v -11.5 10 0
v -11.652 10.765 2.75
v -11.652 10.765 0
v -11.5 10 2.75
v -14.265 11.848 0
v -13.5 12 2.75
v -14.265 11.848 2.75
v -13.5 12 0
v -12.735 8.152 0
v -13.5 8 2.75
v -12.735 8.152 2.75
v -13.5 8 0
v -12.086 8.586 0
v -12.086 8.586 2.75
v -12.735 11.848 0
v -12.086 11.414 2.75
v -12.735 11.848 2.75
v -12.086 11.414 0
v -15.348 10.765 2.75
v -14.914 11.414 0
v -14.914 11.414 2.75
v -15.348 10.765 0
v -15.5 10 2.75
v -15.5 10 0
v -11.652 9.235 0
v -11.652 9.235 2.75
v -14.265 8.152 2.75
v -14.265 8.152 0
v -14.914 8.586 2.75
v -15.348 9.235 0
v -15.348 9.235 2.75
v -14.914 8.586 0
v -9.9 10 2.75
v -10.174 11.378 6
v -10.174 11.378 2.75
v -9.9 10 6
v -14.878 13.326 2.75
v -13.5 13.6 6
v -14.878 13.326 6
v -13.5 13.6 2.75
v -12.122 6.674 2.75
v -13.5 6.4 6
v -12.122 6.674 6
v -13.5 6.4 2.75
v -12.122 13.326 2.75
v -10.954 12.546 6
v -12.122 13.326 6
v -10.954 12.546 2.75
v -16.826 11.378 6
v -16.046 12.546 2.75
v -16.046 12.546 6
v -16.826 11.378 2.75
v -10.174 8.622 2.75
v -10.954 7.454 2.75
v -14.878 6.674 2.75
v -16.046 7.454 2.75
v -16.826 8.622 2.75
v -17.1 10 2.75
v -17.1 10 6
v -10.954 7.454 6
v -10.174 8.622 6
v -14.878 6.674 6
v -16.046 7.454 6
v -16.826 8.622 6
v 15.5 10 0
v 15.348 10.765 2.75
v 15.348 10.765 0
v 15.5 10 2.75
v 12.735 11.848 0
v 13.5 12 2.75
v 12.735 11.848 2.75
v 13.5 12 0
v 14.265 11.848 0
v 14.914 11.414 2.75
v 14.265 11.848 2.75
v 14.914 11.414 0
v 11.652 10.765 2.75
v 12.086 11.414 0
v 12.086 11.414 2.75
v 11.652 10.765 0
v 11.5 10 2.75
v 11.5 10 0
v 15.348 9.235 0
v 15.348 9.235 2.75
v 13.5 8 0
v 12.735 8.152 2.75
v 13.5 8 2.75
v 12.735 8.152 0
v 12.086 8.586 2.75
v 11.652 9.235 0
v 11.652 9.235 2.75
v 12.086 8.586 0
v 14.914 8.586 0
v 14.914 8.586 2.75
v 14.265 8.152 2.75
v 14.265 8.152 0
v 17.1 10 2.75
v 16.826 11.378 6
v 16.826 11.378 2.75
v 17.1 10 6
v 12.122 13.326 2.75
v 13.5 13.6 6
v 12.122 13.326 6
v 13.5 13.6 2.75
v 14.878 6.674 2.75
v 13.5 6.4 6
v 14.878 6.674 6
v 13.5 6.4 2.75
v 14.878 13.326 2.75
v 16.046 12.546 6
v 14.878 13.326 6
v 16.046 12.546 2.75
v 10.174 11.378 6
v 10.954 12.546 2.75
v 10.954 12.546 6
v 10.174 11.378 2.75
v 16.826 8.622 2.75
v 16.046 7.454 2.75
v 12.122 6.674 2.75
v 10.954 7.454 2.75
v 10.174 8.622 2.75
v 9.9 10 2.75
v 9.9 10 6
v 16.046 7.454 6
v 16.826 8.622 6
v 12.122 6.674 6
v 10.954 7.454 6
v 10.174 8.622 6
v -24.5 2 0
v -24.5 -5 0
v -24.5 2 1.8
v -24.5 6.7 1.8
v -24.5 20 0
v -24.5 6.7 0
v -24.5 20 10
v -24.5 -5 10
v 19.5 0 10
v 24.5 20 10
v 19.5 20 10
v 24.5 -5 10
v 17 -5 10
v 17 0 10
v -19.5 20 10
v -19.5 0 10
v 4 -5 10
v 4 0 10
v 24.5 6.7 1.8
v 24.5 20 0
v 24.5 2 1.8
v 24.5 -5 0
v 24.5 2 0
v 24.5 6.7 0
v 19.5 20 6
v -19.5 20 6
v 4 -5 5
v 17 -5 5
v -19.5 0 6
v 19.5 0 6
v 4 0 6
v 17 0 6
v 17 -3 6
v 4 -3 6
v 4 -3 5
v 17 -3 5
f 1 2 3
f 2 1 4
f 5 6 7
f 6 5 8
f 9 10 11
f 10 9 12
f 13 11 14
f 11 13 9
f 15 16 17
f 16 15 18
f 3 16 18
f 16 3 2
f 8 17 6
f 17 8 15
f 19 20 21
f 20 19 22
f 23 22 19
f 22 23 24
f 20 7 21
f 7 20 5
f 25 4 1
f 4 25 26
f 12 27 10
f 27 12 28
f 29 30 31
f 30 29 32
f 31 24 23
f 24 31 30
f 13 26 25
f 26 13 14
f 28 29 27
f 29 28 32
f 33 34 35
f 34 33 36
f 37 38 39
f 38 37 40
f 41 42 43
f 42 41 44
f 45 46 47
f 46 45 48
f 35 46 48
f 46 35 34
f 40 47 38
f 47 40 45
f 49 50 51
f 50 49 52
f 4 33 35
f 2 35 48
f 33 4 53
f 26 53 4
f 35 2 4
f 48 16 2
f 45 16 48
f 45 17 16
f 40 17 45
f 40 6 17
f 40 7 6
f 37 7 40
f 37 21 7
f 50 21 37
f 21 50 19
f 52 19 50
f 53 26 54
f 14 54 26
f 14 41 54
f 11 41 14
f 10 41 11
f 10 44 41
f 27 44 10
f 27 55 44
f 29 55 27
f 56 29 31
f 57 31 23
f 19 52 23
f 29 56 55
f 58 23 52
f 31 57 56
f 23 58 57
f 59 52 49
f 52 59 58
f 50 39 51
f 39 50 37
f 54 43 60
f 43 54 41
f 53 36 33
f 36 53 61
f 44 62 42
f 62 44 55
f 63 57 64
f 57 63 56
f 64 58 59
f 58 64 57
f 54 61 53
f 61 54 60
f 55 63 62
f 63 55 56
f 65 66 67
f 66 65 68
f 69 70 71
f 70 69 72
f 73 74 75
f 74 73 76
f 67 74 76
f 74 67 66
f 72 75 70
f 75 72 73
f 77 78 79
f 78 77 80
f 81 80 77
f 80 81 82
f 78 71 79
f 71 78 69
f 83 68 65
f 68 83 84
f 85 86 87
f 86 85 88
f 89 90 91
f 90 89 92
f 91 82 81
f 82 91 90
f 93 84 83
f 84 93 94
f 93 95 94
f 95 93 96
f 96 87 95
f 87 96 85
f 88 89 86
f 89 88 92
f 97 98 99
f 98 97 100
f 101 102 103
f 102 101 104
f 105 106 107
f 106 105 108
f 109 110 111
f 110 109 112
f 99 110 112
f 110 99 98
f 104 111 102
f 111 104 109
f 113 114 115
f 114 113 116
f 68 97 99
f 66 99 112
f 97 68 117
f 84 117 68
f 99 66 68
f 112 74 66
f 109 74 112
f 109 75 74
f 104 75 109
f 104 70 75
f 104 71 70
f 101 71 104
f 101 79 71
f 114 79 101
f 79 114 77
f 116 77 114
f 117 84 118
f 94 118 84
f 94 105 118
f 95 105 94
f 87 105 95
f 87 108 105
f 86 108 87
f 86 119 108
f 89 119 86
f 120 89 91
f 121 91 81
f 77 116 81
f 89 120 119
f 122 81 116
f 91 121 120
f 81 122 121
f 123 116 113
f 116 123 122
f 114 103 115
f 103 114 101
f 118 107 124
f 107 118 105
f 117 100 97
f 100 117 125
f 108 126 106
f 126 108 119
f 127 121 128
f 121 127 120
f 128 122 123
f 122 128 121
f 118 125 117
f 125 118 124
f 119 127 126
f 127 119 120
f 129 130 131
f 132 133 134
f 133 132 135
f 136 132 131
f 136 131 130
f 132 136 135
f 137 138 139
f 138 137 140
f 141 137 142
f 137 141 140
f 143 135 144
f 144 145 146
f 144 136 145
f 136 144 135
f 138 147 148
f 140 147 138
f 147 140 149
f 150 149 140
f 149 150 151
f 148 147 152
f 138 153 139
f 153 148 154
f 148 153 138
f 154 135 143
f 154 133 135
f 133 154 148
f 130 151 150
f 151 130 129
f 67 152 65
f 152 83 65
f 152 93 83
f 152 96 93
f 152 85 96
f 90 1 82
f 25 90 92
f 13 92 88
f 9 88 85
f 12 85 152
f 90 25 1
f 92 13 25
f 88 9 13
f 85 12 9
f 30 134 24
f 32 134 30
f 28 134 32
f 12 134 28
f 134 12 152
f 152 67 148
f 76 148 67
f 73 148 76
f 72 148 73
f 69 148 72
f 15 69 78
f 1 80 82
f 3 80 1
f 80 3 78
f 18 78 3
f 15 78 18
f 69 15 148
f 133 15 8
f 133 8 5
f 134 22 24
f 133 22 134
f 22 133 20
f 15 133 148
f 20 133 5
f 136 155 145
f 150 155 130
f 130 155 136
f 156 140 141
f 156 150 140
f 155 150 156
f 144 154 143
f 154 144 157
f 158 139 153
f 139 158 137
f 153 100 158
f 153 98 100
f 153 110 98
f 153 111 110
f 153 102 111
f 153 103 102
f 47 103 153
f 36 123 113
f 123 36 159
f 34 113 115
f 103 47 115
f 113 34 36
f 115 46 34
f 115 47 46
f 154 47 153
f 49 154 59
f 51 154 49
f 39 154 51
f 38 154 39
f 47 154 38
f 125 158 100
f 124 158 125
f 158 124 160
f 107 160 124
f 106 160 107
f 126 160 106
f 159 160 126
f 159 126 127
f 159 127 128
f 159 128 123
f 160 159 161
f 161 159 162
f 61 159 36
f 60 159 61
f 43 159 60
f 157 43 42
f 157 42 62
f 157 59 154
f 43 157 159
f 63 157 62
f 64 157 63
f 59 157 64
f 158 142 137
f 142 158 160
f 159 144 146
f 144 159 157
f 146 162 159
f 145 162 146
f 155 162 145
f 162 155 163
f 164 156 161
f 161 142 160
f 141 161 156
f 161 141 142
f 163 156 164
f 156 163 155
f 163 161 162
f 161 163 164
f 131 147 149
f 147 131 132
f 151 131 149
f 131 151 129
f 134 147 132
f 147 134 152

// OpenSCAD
// Base is 49mm wide, 25mm deep
// Body is 39mm wide
// Tab is 16mm wide
// Locks are 6mm from back, 12mm from side, 10mm long

module screw (x, y)
{
  translate ([x, y, 0]) {
    cylinder (h=10, d=4.0, $fn=16, center=true);
  }
  translate ([x, y, 5]) {
    cylinder (h=4.5, d=7.2, $fn=16, center=true);
  }
}

translate ([-24.5, -5, 0]) {
  difference () {
    
    // Floor
    cube ([49, 25, 10]);

    // Main body of PSU cutout
    translate ([5, 5, 6]) {
      cube ([39, 20, 4]);
    }
    
    // Connector cutout
    translate ([28.5, 0, 6]) {
      cube ([13, 5, 4]);
    }
    translate ([28.5, 0, 5]) {
      cube ([13, 2, 1]);
    }
    
    //  Screw hole & head recess
    screw (11, 15);
    screw (38, 15);
    
    // Tie-wrap slot
    translate ([0, 7, 0]) {
      cube ([49, 4.7, 1.8]);
    }
  } 
}
